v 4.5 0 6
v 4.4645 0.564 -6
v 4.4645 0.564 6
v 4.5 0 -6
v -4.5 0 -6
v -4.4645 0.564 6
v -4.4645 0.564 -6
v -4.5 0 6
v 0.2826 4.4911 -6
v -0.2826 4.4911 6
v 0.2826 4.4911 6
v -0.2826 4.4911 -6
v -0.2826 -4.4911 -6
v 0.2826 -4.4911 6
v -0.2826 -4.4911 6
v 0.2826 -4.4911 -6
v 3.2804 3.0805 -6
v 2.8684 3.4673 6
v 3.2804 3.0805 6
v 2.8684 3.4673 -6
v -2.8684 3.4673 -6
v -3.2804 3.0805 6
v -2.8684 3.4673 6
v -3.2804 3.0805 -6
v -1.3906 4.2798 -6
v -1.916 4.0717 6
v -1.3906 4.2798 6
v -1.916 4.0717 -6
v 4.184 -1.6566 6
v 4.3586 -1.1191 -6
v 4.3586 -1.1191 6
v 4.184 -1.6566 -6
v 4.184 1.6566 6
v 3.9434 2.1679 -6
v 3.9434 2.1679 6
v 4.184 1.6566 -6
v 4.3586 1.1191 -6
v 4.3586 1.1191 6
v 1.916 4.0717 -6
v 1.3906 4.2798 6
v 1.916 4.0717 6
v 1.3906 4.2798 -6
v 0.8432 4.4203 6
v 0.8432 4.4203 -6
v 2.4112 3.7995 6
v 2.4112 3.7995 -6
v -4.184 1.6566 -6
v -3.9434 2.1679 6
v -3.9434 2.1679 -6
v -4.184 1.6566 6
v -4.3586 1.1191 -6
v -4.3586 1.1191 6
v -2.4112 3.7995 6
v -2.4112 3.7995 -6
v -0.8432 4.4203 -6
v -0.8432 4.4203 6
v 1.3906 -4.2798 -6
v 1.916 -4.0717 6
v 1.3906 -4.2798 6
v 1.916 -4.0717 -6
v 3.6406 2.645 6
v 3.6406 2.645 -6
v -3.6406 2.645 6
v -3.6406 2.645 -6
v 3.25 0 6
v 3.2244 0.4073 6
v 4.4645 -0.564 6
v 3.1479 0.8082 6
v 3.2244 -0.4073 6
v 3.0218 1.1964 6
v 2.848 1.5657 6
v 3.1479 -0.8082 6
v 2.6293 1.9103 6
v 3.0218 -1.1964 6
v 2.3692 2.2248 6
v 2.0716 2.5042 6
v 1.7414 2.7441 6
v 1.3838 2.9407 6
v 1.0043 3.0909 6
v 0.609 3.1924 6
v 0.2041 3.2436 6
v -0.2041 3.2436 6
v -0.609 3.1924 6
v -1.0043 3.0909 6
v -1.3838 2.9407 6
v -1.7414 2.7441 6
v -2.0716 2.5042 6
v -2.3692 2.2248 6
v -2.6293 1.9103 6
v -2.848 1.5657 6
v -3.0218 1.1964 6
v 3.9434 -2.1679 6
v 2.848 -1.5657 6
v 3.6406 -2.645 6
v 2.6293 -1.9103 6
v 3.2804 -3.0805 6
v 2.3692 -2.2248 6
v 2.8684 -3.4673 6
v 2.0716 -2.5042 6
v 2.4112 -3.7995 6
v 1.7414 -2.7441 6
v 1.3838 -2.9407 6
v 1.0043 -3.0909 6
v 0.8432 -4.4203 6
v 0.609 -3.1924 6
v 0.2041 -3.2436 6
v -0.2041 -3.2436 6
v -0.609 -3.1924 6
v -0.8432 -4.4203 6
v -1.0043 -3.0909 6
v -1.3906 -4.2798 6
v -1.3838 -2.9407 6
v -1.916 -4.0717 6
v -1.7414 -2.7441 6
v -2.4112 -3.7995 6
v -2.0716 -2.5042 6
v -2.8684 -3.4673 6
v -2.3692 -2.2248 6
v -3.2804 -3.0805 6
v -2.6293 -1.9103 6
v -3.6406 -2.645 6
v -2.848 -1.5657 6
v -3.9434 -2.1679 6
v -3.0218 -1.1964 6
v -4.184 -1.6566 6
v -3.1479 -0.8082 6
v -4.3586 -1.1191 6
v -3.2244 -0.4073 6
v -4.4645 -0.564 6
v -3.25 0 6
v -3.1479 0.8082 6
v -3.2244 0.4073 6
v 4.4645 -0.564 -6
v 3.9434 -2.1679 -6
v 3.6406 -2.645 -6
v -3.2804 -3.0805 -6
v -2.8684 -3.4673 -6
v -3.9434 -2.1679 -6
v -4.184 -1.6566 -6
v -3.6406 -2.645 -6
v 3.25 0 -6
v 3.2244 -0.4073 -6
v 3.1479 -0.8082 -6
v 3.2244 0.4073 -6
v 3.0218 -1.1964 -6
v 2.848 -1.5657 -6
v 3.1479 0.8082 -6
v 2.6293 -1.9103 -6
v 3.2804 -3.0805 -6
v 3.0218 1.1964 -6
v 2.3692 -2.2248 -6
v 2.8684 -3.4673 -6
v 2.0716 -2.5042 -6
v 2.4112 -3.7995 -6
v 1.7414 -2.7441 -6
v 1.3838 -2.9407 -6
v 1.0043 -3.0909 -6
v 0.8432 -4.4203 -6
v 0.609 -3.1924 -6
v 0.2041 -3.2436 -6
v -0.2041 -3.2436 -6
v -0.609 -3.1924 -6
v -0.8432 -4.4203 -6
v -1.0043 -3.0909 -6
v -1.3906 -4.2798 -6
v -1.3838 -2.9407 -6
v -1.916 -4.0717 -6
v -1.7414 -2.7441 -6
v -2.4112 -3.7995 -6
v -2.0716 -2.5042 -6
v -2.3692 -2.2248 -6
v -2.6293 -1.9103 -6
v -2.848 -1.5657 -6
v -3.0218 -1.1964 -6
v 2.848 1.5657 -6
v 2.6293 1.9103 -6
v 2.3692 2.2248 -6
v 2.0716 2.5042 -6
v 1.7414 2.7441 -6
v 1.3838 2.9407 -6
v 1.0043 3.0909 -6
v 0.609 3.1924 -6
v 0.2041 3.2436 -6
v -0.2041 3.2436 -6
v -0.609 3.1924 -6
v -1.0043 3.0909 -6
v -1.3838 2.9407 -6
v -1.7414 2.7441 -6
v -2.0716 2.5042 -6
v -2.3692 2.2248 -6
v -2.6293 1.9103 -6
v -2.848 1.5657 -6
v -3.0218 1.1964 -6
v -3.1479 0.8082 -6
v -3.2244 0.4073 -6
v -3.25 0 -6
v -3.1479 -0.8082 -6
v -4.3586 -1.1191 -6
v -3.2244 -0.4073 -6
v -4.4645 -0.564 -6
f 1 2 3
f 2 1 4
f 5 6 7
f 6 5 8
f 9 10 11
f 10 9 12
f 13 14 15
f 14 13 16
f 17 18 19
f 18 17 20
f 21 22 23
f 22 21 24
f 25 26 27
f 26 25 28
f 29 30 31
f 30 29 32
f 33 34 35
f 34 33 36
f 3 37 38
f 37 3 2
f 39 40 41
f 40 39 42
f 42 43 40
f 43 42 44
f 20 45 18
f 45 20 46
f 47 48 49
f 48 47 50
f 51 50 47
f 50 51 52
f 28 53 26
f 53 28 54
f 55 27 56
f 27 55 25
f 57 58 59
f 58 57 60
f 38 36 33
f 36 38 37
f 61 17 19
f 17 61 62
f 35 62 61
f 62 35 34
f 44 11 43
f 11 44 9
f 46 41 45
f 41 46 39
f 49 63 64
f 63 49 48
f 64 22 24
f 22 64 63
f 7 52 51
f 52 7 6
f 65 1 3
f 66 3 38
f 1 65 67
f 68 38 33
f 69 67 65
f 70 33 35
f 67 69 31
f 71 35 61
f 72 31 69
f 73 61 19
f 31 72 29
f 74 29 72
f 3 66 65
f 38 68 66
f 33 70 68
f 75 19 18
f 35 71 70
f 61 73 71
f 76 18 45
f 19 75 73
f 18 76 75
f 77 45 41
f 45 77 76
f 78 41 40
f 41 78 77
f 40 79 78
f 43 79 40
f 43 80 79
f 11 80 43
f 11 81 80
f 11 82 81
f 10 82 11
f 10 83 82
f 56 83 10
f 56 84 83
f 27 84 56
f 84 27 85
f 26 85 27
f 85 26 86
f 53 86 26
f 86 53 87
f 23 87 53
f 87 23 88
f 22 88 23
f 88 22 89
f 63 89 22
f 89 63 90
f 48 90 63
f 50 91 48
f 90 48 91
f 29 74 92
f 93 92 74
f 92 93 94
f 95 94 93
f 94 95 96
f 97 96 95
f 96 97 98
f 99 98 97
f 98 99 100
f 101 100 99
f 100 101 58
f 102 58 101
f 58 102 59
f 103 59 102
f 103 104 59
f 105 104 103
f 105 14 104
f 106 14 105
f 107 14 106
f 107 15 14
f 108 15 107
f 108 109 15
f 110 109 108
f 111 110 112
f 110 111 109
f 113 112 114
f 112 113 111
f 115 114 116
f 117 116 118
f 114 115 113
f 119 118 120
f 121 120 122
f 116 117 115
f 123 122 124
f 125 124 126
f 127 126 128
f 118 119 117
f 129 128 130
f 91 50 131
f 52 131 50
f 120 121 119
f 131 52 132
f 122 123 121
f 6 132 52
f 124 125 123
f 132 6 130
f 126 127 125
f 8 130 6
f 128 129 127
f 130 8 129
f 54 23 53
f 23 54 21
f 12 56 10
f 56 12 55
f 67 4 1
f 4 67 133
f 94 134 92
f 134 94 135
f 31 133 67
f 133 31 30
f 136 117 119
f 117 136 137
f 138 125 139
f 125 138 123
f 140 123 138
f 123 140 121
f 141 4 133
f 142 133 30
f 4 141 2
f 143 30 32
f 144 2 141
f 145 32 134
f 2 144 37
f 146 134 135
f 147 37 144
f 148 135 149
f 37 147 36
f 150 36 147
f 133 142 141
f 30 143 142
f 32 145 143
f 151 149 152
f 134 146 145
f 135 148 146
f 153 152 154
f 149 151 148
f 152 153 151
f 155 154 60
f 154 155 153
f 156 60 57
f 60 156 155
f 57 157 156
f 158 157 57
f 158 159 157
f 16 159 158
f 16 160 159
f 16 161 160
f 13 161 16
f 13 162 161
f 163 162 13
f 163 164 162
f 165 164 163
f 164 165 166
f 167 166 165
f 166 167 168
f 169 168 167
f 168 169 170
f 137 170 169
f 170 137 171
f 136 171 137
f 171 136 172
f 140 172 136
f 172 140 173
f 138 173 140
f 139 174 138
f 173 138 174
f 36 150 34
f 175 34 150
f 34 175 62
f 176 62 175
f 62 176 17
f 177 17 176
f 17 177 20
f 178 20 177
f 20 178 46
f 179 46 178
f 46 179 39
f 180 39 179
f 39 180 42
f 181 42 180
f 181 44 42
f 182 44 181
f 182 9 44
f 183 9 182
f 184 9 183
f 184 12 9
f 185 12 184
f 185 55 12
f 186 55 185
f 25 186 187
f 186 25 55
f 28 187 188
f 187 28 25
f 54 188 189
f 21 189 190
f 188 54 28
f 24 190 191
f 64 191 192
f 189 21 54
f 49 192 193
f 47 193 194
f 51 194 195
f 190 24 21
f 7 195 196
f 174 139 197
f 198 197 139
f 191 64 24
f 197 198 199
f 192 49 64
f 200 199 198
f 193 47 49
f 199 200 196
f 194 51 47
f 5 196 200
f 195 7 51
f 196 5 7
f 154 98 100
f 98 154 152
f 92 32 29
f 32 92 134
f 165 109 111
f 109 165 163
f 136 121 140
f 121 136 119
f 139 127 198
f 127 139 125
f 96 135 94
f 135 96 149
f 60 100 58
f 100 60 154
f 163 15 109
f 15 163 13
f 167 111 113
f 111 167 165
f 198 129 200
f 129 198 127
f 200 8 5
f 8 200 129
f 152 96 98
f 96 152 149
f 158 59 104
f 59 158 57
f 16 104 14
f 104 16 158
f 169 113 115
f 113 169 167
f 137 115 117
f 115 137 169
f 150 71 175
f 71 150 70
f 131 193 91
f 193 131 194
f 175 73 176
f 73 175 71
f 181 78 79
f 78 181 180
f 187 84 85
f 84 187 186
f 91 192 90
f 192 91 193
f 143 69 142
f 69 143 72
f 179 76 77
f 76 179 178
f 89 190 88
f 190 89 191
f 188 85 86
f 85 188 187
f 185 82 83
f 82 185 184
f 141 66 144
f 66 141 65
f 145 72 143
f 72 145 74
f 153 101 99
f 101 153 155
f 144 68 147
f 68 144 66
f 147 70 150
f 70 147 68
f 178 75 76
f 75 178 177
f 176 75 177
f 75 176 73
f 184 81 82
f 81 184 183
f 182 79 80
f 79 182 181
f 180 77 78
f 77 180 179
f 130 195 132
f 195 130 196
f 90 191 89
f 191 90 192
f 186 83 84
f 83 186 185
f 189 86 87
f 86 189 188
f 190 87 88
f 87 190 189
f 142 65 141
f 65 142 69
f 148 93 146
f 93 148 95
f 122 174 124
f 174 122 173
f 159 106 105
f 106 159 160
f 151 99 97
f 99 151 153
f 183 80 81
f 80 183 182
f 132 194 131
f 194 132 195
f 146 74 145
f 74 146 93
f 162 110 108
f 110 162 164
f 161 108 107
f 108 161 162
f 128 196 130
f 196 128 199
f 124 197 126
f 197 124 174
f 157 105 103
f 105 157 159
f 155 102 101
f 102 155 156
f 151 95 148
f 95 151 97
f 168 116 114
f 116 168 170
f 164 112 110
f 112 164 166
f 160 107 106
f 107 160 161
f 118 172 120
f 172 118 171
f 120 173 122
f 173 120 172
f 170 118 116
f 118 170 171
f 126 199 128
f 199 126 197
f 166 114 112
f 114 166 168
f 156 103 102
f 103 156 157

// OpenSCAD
$fn = 50;


difference() {
	union() {
		translate(v = [0, 0, -6.0000000000]) {
			cylinder(h = 12, r = 4.5000000000);
		}
	}
	union() {
		translate(v = [0, 0, -100.0000000000]) {
			cylinder(h = 200, r = 3.2500000000);
		}
	}
}
